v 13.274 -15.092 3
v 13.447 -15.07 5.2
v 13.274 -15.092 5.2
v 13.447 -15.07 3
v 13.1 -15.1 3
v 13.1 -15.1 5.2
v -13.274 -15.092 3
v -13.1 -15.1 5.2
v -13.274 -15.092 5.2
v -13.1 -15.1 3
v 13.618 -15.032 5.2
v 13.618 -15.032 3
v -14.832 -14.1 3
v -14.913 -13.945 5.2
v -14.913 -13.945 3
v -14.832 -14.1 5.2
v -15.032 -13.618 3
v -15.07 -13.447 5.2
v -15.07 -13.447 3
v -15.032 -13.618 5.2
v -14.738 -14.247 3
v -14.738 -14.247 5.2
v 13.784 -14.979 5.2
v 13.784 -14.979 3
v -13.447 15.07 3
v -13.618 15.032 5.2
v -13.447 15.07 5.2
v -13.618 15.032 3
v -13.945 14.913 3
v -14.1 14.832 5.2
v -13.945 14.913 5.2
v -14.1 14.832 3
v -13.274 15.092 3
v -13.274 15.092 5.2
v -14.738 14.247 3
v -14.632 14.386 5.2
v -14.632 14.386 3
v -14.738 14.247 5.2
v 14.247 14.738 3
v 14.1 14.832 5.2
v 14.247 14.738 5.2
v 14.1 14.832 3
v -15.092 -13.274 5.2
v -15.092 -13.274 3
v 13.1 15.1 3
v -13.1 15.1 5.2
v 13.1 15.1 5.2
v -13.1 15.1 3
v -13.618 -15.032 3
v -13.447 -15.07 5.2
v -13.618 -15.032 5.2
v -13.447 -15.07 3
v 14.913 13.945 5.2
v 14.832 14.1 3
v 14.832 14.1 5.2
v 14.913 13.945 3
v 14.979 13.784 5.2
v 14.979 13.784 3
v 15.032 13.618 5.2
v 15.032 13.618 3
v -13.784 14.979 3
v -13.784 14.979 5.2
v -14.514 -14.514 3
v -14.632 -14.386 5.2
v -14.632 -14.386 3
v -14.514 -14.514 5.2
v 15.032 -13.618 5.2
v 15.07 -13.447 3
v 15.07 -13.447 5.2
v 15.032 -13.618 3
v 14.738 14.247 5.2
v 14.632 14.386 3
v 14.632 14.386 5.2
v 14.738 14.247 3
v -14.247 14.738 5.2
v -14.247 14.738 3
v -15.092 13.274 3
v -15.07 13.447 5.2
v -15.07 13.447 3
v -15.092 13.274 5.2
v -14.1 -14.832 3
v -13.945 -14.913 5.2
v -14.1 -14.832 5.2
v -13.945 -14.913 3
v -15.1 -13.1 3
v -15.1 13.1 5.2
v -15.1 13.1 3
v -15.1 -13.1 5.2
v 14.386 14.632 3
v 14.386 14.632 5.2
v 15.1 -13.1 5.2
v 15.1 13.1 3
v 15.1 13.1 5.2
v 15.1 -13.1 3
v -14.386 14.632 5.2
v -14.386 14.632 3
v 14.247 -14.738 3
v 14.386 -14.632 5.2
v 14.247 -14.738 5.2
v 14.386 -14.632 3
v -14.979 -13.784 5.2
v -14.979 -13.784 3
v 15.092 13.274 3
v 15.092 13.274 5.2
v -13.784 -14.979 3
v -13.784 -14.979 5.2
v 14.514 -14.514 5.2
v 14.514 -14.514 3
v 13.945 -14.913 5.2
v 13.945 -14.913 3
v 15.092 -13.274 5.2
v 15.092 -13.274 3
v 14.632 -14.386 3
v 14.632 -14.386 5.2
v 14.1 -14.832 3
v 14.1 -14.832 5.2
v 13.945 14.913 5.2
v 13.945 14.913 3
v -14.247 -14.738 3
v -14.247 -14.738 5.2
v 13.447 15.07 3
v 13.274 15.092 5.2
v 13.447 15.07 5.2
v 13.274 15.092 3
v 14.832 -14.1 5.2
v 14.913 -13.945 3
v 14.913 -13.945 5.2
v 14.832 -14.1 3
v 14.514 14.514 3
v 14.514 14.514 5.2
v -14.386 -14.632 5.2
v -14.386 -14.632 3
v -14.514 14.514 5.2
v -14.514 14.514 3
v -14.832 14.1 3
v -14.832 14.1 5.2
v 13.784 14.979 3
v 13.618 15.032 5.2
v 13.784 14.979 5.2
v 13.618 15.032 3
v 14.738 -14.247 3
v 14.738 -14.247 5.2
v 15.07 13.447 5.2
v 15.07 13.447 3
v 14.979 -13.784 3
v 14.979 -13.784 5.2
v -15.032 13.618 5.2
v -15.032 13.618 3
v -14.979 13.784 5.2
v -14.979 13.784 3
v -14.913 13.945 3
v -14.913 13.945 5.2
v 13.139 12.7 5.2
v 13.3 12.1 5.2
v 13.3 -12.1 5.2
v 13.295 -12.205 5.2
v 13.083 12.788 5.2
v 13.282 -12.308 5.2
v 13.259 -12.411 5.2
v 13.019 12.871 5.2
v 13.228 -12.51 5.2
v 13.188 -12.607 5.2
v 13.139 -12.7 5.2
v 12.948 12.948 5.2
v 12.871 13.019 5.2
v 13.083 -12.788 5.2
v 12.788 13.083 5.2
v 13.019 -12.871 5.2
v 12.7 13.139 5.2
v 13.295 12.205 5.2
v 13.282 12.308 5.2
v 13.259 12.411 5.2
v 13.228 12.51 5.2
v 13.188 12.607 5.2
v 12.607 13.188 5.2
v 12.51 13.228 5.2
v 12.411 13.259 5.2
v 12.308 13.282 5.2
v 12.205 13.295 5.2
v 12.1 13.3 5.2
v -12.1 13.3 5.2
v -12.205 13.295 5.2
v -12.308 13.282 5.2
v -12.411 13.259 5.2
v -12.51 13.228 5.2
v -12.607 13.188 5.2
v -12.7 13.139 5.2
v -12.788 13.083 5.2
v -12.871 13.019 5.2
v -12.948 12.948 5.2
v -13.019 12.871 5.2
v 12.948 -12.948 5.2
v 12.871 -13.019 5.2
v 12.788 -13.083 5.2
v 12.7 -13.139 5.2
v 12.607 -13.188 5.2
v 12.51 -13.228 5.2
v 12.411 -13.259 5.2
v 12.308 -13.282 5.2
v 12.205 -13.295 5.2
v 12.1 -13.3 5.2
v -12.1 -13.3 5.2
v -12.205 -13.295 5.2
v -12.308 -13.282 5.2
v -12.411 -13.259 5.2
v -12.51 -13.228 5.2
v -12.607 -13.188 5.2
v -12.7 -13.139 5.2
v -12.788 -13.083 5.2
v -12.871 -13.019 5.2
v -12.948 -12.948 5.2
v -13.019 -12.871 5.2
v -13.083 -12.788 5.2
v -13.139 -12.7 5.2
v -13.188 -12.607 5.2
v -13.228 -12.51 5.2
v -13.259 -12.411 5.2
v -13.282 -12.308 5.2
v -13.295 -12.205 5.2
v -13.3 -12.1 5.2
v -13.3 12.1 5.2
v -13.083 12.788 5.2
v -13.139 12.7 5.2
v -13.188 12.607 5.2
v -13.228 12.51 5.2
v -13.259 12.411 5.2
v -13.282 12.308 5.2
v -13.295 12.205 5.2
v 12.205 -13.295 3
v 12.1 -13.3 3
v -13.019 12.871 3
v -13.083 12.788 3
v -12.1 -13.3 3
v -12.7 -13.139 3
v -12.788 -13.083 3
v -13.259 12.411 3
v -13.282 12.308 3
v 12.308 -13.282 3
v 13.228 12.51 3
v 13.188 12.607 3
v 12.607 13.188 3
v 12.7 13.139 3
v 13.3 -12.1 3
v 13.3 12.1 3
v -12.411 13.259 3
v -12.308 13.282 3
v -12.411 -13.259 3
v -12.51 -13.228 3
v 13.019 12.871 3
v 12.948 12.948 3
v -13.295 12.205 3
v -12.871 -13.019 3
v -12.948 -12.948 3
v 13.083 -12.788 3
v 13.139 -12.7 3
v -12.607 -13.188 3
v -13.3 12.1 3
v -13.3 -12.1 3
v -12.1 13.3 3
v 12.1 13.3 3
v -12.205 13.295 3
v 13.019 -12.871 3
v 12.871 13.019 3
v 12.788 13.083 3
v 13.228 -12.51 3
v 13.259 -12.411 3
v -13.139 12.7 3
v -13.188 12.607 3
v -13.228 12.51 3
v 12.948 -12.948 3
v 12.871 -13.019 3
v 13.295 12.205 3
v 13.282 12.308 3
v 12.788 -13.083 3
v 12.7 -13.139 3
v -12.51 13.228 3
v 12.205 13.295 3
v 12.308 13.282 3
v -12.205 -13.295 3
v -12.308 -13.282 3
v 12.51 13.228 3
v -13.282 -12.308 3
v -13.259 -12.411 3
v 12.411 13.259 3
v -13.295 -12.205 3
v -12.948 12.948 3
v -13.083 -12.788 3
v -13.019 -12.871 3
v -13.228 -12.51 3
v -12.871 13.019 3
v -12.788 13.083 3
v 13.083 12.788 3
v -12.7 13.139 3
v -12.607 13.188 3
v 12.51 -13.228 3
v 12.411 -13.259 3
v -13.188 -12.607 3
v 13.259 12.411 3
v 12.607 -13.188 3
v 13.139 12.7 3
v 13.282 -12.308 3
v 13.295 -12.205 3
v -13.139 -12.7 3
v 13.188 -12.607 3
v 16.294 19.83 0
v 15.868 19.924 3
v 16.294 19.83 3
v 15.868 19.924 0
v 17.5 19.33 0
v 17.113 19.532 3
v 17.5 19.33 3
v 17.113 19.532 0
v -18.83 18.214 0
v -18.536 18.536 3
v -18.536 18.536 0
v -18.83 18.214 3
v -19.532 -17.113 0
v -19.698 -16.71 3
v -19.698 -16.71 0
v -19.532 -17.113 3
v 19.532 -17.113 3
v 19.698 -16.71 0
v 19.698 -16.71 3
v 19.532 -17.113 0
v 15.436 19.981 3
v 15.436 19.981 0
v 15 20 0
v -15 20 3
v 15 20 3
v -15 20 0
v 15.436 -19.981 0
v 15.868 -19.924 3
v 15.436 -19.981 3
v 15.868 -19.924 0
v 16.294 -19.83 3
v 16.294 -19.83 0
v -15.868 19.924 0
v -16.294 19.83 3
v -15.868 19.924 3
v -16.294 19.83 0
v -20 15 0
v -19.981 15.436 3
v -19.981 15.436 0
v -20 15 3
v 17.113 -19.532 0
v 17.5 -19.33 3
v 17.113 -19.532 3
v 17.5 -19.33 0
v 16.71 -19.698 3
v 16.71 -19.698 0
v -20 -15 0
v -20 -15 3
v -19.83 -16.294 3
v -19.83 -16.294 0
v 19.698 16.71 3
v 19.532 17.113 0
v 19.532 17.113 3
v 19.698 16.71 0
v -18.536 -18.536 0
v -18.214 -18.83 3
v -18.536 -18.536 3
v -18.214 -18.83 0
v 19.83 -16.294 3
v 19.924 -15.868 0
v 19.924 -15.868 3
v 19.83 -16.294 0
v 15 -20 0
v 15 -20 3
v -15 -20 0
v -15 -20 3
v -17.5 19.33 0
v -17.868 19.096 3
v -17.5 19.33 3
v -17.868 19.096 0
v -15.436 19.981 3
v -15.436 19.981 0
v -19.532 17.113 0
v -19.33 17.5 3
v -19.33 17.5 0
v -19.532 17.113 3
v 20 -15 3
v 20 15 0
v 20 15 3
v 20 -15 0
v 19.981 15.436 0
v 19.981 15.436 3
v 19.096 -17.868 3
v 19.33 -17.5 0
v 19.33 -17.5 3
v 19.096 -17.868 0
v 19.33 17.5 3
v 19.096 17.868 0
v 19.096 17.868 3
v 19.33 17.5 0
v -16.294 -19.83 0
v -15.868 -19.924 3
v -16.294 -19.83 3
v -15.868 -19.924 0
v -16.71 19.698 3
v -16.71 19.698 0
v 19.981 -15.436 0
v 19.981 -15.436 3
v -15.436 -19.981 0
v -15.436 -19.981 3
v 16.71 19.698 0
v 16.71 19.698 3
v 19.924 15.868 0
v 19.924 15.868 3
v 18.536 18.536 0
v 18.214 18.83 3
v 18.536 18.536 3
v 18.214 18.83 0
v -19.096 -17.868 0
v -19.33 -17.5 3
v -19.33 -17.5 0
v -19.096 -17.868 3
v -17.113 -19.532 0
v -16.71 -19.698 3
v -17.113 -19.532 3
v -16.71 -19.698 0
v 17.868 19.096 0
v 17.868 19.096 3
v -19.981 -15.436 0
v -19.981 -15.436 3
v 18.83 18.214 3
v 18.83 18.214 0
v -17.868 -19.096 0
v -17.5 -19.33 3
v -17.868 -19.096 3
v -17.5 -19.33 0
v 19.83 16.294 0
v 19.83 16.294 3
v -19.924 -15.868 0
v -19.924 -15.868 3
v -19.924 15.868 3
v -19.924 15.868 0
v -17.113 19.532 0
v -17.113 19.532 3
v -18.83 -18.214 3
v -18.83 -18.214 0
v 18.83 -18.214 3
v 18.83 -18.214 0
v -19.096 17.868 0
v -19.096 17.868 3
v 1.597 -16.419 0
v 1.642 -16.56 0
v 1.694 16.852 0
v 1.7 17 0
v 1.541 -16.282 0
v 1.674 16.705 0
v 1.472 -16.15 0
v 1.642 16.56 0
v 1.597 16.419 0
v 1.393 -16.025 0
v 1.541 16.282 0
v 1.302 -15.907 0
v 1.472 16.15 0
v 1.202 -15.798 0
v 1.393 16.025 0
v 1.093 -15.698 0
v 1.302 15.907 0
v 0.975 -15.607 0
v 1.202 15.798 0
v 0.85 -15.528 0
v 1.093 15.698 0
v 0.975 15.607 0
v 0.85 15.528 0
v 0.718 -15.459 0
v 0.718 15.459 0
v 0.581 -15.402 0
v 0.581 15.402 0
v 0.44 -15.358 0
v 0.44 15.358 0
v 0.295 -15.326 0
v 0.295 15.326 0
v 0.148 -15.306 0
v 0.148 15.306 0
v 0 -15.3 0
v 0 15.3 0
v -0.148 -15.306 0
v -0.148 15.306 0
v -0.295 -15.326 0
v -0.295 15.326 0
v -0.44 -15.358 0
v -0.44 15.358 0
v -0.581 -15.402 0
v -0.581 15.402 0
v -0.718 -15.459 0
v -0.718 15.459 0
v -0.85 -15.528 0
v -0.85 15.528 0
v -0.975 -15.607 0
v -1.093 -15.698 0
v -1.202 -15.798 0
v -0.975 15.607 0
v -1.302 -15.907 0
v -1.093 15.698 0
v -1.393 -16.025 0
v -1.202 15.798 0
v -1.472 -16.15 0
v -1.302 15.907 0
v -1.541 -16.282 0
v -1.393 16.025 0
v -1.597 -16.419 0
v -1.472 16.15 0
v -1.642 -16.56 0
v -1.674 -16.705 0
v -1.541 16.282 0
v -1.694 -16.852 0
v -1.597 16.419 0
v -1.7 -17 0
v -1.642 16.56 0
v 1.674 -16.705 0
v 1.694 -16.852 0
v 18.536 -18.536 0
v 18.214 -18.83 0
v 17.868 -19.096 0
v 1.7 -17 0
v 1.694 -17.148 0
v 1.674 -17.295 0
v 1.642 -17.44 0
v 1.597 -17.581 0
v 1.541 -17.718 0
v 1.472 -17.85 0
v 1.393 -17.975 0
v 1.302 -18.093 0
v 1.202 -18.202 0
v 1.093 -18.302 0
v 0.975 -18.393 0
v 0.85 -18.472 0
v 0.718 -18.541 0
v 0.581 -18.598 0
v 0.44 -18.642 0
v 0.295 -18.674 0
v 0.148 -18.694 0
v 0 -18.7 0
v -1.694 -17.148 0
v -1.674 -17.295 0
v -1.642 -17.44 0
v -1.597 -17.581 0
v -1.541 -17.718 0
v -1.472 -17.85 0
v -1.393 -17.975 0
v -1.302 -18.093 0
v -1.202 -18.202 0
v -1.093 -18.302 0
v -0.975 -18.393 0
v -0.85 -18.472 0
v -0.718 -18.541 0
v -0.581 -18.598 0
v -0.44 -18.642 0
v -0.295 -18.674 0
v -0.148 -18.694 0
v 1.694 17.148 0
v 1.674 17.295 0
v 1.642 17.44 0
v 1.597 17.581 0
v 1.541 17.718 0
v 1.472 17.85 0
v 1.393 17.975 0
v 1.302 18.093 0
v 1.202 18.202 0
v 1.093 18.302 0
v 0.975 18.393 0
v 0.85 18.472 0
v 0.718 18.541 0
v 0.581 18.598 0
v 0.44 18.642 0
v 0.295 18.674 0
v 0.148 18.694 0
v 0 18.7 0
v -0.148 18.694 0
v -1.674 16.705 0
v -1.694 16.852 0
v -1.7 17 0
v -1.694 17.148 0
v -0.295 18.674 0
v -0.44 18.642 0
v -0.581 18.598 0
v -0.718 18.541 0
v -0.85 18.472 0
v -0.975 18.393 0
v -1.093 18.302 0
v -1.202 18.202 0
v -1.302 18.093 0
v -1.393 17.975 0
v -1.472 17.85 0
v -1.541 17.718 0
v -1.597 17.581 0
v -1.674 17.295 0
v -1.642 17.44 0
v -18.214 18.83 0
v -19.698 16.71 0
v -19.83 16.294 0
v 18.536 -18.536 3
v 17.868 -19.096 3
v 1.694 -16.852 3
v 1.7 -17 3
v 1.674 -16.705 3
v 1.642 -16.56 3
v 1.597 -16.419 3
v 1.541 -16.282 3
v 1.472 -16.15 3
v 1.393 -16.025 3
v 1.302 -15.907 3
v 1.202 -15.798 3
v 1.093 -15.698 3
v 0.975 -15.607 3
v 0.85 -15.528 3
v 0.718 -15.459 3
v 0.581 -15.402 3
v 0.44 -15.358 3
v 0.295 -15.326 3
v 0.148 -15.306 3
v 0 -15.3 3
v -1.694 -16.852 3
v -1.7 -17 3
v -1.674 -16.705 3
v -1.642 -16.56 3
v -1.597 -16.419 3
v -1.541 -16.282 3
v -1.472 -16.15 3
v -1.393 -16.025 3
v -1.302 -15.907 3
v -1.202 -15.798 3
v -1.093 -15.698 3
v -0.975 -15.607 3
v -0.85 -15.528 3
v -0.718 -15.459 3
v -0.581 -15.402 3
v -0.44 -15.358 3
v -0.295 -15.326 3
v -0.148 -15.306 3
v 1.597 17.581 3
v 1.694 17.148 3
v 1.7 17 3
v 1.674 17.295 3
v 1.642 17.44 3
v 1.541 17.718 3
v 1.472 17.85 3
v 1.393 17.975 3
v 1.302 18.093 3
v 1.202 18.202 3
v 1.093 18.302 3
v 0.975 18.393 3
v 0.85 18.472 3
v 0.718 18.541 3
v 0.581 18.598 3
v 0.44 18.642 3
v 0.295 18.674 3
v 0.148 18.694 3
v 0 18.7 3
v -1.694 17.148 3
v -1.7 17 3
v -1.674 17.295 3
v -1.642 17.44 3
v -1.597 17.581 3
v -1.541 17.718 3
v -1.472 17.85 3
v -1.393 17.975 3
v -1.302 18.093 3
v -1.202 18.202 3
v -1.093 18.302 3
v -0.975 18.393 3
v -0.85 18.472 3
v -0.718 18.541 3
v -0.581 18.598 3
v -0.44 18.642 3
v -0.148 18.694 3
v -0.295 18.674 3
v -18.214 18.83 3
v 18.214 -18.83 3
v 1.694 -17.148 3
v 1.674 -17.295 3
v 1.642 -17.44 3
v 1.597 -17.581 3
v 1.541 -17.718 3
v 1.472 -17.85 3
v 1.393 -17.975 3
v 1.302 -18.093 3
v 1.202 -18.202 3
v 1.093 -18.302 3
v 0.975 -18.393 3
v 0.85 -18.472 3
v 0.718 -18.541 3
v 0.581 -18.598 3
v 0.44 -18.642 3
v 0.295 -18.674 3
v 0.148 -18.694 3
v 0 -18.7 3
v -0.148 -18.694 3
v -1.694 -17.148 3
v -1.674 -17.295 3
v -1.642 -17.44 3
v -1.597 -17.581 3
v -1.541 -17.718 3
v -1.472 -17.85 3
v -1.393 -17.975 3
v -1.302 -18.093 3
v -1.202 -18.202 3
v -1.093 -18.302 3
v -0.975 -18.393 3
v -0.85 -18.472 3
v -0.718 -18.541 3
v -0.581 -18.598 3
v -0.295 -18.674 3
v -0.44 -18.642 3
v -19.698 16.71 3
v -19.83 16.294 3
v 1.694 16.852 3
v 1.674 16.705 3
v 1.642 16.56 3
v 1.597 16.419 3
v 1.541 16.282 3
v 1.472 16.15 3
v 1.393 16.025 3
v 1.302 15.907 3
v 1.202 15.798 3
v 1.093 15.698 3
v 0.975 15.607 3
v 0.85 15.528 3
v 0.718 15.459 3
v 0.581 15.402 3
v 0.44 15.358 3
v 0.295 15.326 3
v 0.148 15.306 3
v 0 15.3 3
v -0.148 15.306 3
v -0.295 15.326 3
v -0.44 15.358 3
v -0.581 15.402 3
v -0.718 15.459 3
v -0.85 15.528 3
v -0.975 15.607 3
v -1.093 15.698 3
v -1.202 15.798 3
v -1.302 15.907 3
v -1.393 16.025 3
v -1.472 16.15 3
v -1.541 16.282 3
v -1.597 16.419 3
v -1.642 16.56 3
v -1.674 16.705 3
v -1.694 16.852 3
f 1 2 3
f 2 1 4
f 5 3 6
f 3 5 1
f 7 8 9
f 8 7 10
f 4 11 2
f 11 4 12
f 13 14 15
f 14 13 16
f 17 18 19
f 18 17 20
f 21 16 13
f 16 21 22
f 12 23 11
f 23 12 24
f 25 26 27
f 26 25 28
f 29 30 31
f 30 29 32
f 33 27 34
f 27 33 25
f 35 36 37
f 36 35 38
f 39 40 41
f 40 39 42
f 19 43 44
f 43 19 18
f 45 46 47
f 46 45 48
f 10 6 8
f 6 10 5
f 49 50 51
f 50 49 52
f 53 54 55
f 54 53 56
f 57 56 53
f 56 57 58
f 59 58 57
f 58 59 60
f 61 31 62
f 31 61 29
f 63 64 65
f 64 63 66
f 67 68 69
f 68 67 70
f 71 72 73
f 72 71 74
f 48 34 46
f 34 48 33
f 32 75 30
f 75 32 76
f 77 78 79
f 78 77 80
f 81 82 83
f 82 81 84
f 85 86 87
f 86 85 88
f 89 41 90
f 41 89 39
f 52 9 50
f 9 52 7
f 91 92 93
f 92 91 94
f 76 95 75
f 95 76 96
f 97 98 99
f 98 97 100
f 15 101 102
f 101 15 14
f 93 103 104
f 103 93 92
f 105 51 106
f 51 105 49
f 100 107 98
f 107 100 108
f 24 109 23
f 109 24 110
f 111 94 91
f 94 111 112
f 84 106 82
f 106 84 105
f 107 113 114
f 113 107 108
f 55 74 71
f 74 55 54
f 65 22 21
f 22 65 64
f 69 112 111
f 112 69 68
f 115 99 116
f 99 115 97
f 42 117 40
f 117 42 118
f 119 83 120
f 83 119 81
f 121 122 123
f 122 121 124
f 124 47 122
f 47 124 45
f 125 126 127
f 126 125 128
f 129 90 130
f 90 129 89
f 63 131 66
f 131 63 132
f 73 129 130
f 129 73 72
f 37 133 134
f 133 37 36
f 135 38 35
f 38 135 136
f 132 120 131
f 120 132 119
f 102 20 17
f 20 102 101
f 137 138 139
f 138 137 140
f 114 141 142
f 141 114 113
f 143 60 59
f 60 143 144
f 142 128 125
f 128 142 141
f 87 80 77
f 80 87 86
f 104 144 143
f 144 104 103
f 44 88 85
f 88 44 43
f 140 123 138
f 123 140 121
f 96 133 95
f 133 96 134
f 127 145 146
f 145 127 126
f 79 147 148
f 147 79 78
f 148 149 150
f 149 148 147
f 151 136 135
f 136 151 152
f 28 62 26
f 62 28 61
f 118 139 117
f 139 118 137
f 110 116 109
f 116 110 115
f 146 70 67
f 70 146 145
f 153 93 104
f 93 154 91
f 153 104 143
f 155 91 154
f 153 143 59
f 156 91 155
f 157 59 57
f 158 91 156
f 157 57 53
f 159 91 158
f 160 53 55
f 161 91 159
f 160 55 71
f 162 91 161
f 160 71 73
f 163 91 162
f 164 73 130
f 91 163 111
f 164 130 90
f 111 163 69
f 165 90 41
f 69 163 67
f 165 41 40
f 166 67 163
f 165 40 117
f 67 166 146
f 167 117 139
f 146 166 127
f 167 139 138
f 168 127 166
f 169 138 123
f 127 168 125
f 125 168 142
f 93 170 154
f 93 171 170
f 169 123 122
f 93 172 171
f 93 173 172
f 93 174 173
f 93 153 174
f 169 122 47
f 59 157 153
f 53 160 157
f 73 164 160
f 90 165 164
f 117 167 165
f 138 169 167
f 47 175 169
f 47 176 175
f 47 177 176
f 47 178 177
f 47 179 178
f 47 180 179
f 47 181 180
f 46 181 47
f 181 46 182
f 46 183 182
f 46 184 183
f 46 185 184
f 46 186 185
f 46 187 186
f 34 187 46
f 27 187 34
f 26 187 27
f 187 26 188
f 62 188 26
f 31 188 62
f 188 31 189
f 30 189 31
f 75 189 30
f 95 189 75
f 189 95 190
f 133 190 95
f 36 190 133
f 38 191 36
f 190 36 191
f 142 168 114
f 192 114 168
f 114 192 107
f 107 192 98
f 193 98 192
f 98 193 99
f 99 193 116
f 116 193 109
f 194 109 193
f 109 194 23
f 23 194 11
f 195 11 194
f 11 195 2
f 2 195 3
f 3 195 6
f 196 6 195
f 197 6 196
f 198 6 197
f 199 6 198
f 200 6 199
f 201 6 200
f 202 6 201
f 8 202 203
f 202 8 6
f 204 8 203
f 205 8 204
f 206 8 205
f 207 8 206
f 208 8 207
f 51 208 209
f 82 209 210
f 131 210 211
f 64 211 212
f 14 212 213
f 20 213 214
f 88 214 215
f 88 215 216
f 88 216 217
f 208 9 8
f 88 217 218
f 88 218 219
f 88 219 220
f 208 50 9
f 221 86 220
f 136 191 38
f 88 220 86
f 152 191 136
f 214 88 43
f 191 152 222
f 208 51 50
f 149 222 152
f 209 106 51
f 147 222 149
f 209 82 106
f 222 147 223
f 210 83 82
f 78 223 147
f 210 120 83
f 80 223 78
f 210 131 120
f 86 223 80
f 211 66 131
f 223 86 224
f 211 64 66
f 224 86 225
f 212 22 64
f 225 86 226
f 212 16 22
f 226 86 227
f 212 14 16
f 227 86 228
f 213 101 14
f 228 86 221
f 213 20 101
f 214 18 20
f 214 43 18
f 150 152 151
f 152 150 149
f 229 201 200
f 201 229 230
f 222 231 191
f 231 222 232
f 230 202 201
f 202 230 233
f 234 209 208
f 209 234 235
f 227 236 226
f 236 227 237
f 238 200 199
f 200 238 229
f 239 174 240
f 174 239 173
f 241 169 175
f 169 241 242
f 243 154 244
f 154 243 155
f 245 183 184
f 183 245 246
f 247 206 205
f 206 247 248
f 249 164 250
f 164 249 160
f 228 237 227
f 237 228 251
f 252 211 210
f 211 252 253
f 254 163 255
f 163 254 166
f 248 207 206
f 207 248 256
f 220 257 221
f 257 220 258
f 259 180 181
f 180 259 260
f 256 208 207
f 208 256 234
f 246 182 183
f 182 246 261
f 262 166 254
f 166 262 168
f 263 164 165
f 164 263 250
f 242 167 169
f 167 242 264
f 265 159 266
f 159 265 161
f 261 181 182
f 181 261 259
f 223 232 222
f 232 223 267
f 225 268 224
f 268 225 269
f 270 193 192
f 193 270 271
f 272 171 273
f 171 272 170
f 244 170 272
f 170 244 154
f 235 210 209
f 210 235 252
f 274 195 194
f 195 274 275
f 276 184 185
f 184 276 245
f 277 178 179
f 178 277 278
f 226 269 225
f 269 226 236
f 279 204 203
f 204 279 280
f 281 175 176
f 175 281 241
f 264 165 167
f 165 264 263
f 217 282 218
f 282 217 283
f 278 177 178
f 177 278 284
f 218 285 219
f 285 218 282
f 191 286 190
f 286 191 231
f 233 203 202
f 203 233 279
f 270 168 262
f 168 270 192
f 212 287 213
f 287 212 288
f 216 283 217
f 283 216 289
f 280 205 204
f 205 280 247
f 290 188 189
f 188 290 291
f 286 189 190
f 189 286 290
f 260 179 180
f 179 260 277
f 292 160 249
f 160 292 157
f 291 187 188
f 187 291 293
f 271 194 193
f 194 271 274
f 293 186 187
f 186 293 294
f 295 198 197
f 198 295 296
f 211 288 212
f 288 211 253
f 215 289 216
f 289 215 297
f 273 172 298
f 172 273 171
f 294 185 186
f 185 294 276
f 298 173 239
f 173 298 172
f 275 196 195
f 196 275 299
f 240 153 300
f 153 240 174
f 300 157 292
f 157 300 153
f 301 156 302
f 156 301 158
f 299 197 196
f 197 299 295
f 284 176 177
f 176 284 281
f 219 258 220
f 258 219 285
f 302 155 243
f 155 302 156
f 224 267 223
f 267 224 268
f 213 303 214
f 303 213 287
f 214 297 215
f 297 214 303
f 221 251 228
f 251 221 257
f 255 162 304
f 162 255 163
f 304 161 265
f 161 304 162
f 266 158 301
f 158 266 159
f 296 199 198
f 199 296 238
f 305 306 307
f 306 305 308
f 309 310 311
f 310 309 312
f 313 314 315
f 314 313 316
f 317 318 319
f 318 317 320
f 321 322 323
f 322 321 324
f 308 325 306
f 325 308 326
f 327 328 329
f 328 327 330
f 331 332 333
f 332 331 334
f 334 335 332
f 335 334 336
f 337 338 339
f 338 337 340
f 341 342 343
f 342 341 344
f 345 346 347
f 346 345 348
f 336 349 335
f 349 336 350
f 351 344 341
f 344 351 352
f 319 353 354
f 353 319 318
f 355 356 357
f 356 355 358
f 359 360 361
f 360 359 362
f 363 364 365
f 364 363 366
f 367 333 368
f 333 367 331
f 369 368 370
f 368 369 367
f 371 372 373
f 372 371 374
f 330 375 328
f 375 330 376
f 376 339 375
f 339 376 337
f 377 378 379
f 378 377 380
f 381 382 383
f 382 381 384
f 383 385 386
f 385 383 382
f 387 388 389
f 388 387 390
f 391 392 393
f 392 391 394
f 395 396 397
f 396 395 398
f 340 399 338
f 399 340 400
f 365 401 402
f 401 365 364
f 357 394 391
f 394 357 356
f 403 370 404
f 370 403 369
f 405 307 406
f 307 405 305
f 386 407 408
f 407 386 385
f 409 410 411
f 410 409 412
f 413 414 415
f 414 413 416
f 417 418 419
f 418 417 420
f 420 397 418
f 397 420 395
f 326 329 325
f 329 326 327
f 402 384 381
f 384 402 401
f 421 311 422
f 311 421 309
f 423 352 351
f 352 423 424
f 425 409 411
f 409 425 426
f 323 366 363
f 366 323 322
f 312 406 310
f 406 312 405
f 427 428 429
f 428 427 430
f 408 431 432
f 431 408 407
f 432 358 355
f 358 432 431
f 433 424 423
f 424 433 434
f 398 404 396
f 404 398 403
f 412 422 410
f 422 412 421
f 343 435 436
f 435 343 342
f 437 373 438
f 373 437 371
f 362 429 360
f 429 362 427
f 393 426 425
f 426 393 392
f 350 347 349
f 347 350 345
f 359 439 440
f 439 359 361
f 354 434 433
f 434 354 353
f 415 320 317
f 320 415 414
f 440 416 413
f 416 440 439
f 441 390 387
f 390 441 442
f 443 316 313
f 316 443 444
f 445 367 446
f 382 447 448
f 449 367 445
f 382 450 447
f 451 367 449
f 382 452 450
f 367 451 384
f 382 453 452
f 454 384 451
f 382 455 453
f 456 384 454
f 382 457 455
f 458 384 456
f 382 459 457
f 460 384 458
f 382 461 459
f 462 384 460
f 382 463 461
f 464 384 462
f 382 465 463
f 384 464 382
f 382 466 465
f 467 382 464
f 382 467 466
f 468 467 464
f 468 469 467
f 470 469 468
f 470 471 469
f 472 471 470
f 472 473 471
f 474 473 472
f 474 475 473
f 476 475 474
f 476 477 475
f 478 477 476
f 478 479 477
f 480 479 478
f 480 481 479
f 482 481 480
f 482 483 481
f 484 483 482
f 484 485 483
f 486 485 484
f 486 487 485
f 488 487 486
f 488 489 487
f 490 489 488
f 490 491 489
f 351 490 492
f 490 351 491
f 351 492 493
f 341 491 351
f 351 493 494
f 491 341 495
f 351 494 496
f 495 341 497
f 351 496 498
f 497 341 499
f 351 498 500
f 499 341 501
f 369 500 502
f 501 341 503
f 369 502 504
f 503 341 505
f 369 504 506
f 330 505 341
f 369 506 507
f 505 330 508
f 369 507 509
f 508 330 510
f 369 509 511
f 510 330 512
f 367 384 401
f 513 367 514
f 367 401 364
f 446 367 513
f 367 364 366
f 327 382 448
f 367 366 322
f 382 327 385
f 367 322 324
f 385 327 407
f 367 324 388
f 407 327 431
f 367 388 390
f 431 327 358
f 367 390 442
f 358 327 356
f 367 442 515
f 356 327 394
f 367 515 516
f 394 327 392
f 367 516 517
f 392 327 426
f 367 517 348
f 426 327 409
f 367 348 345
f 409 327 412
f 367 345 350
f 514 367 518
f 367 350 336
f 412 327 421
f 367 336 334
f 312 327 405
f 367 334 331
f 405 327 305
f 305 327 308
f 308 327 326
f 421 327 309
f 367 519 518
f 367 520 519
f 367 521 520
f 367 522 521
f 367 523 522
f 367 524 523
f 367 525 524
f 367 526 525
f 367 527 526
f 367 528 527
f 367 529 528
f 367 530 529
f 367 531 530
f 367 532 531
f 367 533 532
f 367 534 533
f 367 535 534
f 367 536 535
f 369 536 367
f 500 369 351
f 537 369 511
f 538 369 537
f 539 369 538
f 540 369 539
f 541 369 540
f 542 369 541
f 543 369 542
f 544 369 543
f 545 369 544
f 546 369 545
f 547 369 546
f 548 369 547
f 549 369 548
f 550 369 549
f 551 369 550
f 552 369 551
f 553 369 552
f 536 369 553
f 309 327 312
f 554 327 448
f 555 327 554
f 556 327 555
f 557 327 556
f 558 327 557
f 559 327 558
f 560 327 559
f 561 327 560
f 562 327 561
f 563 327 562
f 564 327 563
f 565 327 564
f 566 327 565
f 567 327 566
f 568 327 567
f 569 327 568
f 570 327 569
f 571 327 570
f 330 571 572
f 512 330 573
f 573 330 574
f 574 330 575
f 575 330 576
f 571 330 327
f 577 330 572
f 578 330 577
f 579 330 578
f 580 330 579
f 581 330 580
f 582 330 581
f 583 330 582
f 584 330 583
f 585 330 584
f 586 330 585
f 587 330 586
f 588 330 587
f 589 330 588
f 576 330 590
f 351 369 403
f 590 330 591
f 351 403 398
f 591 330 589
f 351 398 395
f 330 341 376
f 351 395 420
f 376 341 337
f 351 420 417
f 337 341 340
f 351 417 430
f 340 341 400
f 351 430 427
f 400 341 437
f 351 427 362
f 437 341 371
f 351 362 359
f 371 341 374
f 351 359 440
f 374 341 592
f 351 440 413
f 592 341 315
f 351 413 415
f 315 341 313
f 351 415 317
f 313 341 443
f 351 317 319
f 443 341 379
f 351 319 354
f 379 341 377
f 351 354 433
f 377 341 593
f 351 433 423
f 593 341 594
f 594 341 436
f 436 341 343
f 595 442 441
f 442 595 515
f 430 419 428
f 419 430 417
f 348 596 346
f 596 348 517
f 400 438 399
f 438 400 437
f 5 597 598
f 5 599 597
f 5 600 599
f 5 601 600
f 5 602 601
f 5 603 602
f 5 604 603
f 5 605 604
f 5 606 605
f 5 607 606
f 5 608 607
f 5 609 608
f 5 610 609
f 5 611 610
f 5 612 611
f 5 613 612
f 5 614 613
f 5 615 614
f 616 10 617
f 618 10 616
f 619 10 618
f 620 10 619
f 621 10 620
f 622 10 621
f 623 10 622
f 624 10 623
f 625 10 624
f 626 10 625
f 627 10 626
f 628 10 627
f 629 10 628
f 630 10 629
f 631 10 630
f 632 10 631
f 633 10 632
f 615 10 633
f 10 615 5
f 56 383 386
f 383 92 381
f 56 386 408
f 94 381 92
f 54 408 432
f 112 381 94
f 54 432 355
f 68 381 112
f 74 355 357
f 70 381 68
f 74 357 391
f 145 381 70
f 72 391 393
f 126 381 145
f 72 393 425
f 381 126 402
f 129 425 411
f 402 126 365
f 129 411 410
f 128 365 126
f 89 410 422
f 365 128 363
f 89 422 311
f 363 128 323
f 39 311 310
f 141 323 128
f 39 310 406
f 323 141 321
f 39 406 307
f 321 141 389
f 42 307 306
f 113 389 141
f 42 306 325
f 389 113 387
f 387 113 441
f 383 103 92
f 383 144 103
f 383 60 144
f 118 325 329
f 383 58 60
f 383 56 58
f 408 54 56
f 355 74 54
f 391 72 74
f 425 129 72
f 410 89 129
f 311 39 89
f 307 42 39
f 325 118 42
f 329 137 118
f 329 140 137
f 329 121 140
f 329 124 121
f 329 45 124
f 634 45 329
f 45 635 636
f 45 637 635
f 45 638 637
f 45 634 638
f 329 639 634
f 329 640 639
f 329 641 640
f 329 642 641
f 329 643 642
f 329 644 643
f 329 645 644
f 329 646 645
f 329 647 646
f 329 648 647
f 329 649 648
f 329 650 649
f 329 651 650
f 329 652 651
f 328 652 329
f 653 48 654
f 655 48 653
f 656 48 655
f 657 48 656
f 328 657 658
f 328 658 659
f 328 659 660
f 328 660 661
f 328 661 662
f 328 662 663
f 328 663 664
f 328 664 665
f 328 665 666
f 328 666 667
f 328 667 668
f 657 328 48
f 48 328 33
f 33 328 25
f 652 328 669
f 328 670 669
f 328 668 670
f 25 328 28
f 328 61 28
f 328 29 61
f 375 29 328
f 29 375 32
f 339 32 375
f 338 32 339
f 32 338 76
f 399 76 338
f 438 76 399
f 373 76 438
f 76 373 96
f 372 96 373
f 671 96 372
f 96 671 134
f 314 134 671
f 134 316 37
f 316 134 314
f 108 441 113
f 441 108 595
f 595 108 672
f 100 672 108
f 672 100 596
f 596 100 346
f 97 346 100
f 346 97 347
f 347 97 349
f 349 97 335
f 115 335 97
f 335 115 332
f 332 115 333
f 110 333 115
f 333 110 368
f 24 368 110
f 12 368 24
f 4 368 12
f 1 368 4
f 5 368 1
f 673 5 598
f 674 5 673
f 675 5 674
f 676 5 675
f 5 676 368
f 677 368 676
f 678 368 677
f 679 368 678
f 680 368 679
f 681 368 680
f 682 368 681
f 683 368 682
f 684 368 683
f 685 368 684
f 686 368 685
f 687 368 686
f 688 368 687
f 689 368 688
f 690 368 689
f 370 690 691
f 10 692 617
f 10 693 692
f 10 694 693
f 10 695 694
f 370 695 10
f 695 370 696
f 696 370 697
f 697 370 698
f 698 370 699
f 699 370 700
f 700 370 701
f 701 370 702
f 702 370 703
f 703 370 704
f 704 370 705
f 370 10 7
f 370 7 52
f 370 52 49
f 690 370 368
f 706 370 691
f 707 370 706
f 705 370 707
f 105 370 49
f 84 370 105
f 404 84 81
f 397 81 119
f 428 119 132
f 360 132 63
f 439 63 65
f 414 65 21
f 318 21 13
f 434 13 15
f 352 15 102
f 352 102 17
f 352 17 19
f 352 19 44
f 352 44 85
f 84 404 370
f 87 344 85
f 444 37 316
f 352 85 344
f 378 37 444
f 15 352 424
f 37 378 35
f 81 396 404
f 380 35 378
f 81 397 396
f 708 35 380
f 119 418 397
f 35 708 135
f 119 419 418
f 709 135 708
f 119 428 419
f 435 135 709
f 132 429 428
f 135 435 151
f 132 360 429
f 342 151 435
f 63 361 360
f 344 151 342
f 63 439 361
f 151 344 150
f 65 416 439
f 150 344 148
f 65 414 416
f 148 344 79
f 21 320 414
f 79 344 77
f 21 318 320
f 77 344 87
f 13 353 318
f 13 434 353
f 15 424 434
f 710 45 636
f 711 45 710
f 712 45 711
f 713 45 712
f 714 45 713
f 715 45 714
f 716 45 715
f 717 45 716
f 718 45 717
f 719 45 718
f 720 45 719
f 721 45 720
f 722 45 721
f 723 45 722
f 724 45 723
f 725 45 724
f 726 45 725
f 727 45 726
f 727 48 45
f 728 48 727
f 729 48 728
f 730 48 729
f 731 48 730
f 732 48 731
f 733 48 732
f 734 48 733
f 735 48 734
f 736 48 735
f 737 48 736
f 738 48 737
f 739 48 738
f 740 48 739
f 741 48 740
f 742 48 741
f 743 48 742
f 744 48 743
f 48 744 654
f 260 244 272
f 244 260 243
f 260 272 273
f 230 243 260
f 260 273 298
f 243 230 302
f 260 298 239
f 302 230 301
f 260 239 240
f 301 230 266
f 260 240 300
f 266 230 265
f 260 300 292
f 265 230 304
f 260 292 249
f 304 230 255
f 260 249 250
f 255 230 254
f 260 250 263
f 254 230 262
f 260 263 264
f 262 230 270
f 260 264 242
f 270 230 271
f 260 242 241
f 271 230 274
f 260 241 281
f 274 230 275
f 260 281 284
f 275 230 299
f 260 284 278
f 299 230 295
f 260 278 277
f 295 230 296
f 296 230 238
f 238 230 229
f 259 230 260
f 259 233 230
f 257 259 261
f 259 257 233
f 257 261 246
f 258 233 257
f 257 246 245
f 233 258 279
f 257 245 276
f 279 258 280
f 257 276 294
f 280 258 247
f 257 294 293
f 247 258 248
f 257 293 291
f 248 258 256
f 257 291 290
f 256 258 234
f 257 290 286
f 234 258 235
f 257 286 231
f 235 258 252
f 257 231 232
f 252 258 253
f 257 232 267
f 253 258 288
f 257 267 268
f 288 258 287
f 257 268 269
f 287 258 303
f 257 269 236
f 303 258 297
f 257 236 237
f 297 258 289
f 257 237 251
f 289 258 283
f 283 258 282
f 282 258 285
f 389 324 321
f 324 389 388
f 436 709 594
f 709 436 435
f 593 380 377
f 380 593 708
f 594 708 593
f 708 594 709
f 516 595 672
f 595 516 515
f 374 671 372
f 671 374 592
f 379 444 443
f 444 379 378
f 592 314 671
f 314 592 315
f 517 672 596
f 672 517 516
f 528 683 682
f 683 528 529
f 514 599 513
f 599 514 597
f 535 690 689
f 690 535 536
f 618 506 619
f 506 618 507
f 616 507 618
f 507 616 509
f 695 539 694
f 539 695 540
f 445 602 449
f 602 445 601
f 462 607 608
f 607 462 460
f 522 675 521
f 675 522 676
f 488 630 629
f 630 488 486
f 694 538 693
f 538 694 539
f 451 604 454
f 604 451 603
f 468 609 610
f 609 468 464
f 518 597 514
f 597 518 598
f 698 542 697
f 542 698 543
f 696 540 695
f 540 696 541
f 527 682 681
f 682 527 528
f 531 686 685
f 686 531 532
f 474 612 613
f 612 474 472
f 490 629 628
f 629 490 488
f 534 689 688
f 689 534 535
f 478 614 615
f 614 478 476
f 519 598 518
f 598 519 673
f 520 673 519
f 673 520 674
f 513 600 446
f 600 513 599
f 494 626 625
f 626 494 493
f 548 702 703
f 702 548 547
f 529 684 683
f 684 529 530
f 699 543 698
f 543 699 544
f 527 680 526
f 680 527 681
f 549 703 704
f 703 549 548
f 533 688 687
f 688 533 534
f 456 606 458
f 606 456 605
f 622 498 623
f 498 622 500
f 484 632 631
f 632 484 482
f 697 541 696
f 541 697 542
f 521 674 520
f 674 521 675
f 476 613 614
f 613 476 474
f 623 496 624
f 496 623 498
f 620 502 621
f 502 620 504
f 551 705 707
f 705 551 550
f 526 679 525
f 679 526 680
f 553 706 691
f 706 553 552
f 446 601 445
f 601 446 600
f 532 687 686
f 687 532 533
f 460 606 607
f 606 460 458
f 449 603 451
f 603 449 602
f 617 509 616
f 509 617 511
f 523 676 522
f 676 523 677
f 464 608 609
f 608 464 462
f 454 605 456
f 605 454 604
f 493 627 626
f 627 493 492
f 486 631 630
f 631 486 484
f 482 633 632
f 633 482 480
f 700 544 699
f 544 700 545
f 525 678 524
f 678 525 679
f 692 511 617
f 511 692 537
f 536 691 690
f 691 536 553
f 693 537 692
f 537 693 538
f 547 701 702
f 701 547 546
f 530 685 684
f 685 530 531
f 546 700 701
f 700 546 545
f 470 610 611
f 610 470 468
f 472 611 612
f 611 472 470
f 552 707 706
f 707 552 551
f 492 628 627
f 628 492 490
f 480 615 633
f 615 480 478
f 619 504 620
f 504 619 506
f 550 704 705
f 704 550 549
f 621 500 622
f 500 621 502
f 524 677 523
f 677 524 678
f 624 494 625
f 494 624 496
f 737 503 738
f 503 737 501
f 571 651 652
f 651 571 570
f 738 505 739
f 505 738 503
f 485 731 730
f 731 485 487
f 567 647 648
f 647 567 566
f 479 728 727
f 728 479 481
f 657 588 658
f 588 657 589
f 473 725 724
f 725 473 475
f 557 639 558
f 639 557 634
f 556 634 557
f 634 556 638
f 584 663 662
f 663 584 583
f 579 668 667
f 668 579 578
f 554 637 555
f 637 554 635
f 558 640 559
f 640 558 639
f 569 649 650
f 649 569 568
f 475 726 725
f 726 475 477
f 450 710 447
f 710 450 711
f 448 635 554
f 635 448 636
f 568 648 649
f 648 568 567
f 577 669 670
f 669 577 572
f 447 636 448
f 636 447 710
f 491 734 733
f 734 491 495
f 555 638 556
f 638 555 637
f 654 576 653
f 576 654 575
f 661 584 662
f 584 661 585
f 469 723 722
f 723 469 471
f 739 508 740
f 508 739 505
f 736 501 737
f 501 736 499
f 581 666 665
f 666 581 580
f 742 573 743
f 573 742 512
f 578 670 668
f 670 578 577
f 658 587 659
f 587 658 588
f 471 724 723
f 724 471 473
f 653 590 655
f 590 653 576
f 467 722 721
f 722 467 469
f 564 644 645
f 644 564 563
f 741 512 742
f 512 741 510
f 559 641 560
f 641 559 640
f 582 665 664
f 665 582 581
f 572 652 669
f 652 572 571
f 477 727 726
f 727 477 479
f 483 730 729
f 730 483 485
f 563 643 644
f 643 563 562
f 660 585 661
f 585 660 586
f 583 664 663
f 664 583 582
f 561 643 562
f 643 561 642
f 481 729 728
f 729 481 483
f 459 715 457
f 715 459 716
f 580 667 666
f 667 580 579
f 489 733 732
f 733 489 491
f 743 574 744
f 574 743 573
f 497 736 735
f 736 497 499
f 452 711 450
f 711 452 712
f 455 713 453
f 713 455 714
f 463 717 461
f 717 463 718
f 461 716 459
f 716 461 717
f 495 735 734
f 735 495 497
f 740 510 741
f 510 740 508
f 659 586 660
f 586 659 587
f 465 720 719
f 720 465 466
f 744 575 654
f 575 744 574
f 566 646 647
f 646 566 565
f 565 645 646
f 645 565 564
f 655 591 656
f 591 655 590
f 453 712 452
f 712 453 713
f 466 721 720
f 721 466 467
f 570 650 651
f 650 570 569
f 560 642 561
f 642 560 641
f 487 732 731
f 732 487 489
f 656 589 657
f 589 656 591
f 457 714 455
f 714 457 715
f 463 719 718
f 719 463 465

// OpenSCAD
// file: woli_config.scad
// ============================================================
// WOLI V1.1 AUDITED FINAL — MASTER PARAMETERS
// Units: mm
// ============================================================

$fn = 72;

// ---------- GLOBAL ----------
fit_clearance = 0.40;
wall = 3.0;
floor_t = 5.0;
cover_t = 2.8;
shell_r = 10.0;

m3_clear = 3.4;
m3_pilot_d = 2.8;
m3_pilot_depth = 4.2;

tie_slot_w = 3.8;
tie_slot_l = 18;

// ---------- BODY ----------
body_w = 170;
body_l = 90;
chassis_h = 31;
top_h = 34;

top_upper_w = 162;
top_upper_l = 80;
top_upper_r = 9;

// ---------- N20 DRIVE ----------
wheel_d = 43;
wheel_w = 17.5;

n20_x = 12;
n20_y = 33;
n20_z = 10;

n20_bracket_x = 25;
n20_bracket_y = 8.5;
n20_bracket_z = 11.5;
n20_bracket_hole_cc = 17;      // approx; slots absorb error

wheel_axis_ground_z = wheel_d/2; // reference only; actual chassis ground plane requires hardware check
wheel_opening_l = 25;            // side wheel cutout depth (Y), mm
motor_y = -body_l/2 + body_l/3;  // wheel center: 1/3 body depth in from front (-Y)
motor_slot_len = 8;
motor_bracket_zone_x = body_w/2 - 18;

// ---------- BALL CASTER ----------
caster_w = 22;
caster_l = 17;
caster_h = 15;
caster_ball_d_visual_ref = 11.5; // photo-only reference; not used for fit
caster_dock_y = body_l/2 - 21;

caster_body_clear = 0.7;
caster_retainer_t = 3.0;
caster_retainer_screw_cc = 27;

caster_mount_x = 15;
caster_mount_y = 12;
caster_floor_open = 18.5;

// ---------- MAIN PCB ----------
pcb_w = 50;
pcb_l = 70;
pcb_stack_h = 15;

pcb_tray_w = 56;
pcb_tray_l = 76;
pcb_mount_cc_x = 44;
pcb_mount_cc_y = 64;

// ---------- MG90S ----------
servo_a = 32.4;
servo_b = 32.5;
servo_c = 12;
servo_fit = 0.7;

// ---------- LIMIT SWITCH ----------
limit_w = 21;
limit_l = 23;
limit_h = 6;

// ---------- VL53L0X ----------
tof_w = 10.7;
tof_l = 25;
tof_h = 11.5;
tof_rail_clear = 0.7;

tof_bezel_w = 34;
tof_bezel_h = 19;

// ---------- PHONE HOLDER / NECK ----------
phone_ball_d = 18.0;            // physical socket fit still required
neck_h = 30;
neck_base_w = 54;
neck_base_l = 42;
neck_base_h = 5;
neck_hole_x = 38;
neck_hole_y = 26;

neck_recess_w = 62;
neck_recess_l = 50;
neck_recess_d = 1.2;

neck_pilot_d = 2.8;
neck_pilot_depth = 7.0;

// reference phone clearance envelope only
phone_ref_w = 165;
phone_ref_h = 82;
phone_ref_t = 12;

// ---------- KLIFE PD-Q2 BATTERY ----------
battery_w = 68;
battery_l = 143;
battery_h = 11;
battery_mass_g = 205;

battery_fit_clear = 0.8;
battery_tray_w = 84;
battery_tray_l = 146;
battery_tray_t = 2.4;
battery_rail_t = 2.5;
battery_rail_h = 5.5;
battery_center_y = -18;

battery_tray_mount_x = 39;
battery_tray_mount_y = 55;

// ---------- UPPER ELECTRONICS DECK ----------
bridge_w = 122;
bridge_l = 94;
bridge_t = 3.0;
bridge_leg_h = 20;
bridge_leg_x = 56;
bridge_leg_y = 36;

module_boss_h = 4.5;
module_boss_d = 8.0;
module_pilot_d = 2.8;

pcb_deck_cx = -25;
pcb_deck_cy = 0;

tb_deck_cx = 34;
tb_deck_cy = 17;

usbc_deck_cx = 36;
usbc_deck_cy = -24;

// ---------- TB6612FNG HW-166 ----------
tb6612_w = 26;
tb6612_l = 26;
tb6612_clear = 0.6;

// total installed height is intentionally not hard-coded

// ---------- USB-C BREAKOUT ----------
usbc_board_w = 12;
usbc_board_l = 15;
usbc_connector_h = 4.2;
usbc_clear = 0.6;

// ---------- TOP COVER INTERFACE ----------
cover_skirt_depth = 4.0;
cover_skirt_clear = 0.8;
cover_skirt_t = 2.5;

cover_side_screw_y = 55 * body_l / 190;
cover_side_screw_z = -2.5;

rear_service_w = 42;
rear_service_h = 14;
rear_hatch_screw_x = 19;
rear_hatch_center_z = 10;

// ---------- CABLE MANAGEMENT ----------
cable_bridge_w = 24;
cable_bridge_l = 14;
cable_bridge_h = 8;
cable_bridge_channel = 8;

// ---------- SERVO LOCK FRAMEWORK ----------
lock_angle_deg = 90;
unlock_angle_deg = 10;

lock_plate_d = 28;
lock_arm_w = 10;
lock_arm_t = 4.0;
lock_reach = 22;
lock_tip_d = 10;

horn_center_clear_d = 7.0;
horn_slot_d = 2.4;              // physical stock-horn check required
horn_slot_len = 8.0;
horn_slot_radius = 8.0;

lock_pad_t = 2.0;
lock_pad_d = 11.0;
// file: woli_lib.scad
include <woli_config.scad>;

module rr2d(w,l,r){
    offset(r=r) square([w-2*r,l-2*r], center=true);
}

module rplate(w,l,h,r){
    linear_extrude(height=h) rr2d(w,l,r);
}

module rshell(w,l,h,r,t,bottom){
    difference(){
        rplate(w,l,h,r);
        translate([0,0,bottom])
            rplate(w-2*t,l-2*t,h,r-t);
    }
}

module slot2d(len,d){
    hull(){
        translate([-len/2,0]) circle(d=d);
        translate([ len/2,0]) circle(d=d);
    }
}

module slot3d(len,d,h){
    linear_extrude(height=h) slot2d(len,d);
}

module tie_slot(h=5){
    rplate(tie_slot_w,tie_slot_l,h,1.2);
}

module body_screw_pattern(h=20){
    for(x=[-screw_x,screw_x])
        for(y=[-screw_y,screw_y])
            translate([x,y,-1])
                cylinder(h=h,d=m3_clear);
}

module body_bosses(h=20){
    for(x=[-screw_x,screw_x])
        for(y=[-screw_y,screw_y])
            translate([x,y,0])
                cylinder(h=h,d=m3_boss_d);
}


// Closed-top shell for removable upper cover.
// Leaves the underside open and preserves a roof thickness.
module top_shell(w,l,h,r,t){
    difference(){
        rplate(w,l,h,r);
        translate([0,0,-0.1])
            rplate(w-2*t,l-2*t,h-t+0.1,r-t);
    }
}


// Tapered rounded solid built from two rounded plates.
// Useful for product-like enclosure shoulders.
module tapered_rounded_solid(w0,l0,w1,l1,h,r0,r1){
    hull(){
        rplate(w0,l0,0.8,r0);
        translate([0,0,h-0.8])
            rplate(w1,l1,0.8,r1);
    }
}

// Open-bottom tapered cover with closed roof.
module tapered_top_shell(w0,l0,w1,l1,h,r0,r1,t){
    difference(){
        tapered_rounded_solid(w0,l0,w1,l1,h,r0,r1);
        translate([0,0,-0.1])
            tapered_rounded_solid(
                w0-2*t,l0-2*t,
                w1-2*t,l1-2*t,
                h-t+0.1,
                max(r0-t,1),max(r1-t,1)
            );
    }
}
// main file
include <woli_lib.scad>;

// ============================================================
// 15 TB6612FNG HW-166 TRAY V0.3.1 FINAL QA DESIGN
// Confirmed PCB plan size: 26 x 26 mm
// Total installed height: PENDING
//
// Conservative geometry:
// - continuous 40 x 40 mm base
// - low 2.2 mm perimeter guide around the PCB
// - open top
// - only two M3 mounting holes
// - no guessed PCB mounting-hole pattern
//
// Low guide height keeps the top-side solder pads accessible.
// ============================================================

base_w = 40;
base_l = 40;
base_t = 3;

pcb_clear = tb6612_clear;
pocket = tb6612_w + pcb_clear;   // 26.6 mm
guide_t = 1.8;
guide_h = 2.2;
guide_overlap = 0.7;
outer = pocket + 2*guide_t;

difference(){
    union(){
        rplate(base_w,base_l,base_t,5);

        // continuous low retaining frame, overlapped into base
        translate([0,0,base_t-guide_overlap])
            difference(){
                rplate(outer,outer,guide_h+guide_overlap,2.0);
                translate([0,0,-0.1])
                    rplate(pocket,pocket,guide_h+guide_overlap+0.2,1.2);
            }
    }

    // Two mounting holes, outside the PCB retaining frame
    for(y=[-17,17])
        translate([0,y,-0.1])
            cylinder(h=base_t+0.4,d=m3_clear);
}
